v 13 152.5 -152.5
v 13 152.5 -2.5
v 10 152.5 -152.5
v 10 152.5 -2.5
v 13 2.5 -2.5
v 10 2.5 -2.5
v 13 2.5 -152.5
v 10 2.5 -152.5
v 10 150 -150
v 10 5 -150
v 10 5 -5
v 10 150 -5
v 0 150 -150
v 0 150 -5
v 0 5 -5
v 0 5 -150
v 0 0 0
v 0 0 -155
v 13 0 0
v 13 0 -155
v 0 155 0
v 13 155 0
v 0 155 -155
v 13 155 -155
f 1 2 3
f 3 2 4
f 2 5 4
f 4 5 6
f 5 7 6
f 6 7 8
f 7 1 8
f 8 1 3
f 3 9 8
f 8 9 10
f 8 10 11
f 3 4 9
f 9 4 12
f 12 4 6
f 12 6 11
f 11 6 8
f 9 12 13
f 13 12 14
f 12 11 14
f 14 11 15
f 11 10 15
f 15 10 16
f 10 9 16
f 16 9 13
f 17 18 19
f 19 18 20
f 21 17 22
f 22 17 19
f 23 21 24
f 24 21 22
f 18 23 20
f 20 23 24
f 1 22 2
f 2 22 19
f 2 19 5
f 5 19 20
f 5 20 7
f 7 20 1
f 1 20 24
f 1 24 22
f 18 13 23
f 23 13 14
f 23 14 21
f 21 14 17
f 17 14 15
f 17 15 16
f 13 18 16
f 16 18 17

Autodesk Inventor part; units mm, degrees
ref_plane "YZ Plane" through (0, 0, 0) normal (1, 0, 0) x (0, 1, 0)
ref_plane "XZ Plane" through (0, 0, 0) normal (0, 1, 0) x (-1, 0, 0)
ref_plane "XY Plane" through (0, 0, 0) normal (0, 0, 1) x (1, 0, 0)
sketch "Esquisse1" plane through (0, 0, 0) normal (1, 0, 0) x (0, 1, 0)
  line L0 (0, 0) -> (155, 0)
  line L1 (155, 0) -> (155, -155)
  line L2 (155, -155) -> (0, -155)
  line L3 (0, -155) -> (0, 0)
  line L4 (5, -5) -> (150, -5)
  line L5 (150, -5) -> (150, -150)
  line L6 (150, -150) -> (5, -150)
  line L7 (5, -150) -> (5, -5)
  dimension "d0" = 155
  dimension "d1" = 155
  dimension "d2" = 145
  dimension "d3" = 145
extrude "Extrusion1" add sketch "Esquisse1" along normal blind 13
sketch "Esquisse2" plane through (13, 0, 0) normal (1, 0, 0) x (0, 0, -1)
  line L0 (2.5, 2.5) -> (152.5, 2.5)
  line L1 (152.5, 2.5) -> (152.5, 152.5)
  line L2 (152.5, 152.5) -> (2.5, 152.5)
  line L3 (2.5, 152.5) -> (2.5, 2.5)
  line L4 (150, 5) -> (5, 5) projected
  line L5 (5, 5) -> (150, 5)
  line L6 (150, 5) -> (150, 150)
  line L7 (150, 150) -> (5, 150)
  line L8 (5, 150) -> (5, 5)
  point P0 (0, 0)
  point P1 (155, 155)
  dimension "d7" = 150
  dimension "d8" = 150
extrude "Extrusion2" cut sketch "Esquisse2" against normal blind 3
properties part number "rebord1515"
